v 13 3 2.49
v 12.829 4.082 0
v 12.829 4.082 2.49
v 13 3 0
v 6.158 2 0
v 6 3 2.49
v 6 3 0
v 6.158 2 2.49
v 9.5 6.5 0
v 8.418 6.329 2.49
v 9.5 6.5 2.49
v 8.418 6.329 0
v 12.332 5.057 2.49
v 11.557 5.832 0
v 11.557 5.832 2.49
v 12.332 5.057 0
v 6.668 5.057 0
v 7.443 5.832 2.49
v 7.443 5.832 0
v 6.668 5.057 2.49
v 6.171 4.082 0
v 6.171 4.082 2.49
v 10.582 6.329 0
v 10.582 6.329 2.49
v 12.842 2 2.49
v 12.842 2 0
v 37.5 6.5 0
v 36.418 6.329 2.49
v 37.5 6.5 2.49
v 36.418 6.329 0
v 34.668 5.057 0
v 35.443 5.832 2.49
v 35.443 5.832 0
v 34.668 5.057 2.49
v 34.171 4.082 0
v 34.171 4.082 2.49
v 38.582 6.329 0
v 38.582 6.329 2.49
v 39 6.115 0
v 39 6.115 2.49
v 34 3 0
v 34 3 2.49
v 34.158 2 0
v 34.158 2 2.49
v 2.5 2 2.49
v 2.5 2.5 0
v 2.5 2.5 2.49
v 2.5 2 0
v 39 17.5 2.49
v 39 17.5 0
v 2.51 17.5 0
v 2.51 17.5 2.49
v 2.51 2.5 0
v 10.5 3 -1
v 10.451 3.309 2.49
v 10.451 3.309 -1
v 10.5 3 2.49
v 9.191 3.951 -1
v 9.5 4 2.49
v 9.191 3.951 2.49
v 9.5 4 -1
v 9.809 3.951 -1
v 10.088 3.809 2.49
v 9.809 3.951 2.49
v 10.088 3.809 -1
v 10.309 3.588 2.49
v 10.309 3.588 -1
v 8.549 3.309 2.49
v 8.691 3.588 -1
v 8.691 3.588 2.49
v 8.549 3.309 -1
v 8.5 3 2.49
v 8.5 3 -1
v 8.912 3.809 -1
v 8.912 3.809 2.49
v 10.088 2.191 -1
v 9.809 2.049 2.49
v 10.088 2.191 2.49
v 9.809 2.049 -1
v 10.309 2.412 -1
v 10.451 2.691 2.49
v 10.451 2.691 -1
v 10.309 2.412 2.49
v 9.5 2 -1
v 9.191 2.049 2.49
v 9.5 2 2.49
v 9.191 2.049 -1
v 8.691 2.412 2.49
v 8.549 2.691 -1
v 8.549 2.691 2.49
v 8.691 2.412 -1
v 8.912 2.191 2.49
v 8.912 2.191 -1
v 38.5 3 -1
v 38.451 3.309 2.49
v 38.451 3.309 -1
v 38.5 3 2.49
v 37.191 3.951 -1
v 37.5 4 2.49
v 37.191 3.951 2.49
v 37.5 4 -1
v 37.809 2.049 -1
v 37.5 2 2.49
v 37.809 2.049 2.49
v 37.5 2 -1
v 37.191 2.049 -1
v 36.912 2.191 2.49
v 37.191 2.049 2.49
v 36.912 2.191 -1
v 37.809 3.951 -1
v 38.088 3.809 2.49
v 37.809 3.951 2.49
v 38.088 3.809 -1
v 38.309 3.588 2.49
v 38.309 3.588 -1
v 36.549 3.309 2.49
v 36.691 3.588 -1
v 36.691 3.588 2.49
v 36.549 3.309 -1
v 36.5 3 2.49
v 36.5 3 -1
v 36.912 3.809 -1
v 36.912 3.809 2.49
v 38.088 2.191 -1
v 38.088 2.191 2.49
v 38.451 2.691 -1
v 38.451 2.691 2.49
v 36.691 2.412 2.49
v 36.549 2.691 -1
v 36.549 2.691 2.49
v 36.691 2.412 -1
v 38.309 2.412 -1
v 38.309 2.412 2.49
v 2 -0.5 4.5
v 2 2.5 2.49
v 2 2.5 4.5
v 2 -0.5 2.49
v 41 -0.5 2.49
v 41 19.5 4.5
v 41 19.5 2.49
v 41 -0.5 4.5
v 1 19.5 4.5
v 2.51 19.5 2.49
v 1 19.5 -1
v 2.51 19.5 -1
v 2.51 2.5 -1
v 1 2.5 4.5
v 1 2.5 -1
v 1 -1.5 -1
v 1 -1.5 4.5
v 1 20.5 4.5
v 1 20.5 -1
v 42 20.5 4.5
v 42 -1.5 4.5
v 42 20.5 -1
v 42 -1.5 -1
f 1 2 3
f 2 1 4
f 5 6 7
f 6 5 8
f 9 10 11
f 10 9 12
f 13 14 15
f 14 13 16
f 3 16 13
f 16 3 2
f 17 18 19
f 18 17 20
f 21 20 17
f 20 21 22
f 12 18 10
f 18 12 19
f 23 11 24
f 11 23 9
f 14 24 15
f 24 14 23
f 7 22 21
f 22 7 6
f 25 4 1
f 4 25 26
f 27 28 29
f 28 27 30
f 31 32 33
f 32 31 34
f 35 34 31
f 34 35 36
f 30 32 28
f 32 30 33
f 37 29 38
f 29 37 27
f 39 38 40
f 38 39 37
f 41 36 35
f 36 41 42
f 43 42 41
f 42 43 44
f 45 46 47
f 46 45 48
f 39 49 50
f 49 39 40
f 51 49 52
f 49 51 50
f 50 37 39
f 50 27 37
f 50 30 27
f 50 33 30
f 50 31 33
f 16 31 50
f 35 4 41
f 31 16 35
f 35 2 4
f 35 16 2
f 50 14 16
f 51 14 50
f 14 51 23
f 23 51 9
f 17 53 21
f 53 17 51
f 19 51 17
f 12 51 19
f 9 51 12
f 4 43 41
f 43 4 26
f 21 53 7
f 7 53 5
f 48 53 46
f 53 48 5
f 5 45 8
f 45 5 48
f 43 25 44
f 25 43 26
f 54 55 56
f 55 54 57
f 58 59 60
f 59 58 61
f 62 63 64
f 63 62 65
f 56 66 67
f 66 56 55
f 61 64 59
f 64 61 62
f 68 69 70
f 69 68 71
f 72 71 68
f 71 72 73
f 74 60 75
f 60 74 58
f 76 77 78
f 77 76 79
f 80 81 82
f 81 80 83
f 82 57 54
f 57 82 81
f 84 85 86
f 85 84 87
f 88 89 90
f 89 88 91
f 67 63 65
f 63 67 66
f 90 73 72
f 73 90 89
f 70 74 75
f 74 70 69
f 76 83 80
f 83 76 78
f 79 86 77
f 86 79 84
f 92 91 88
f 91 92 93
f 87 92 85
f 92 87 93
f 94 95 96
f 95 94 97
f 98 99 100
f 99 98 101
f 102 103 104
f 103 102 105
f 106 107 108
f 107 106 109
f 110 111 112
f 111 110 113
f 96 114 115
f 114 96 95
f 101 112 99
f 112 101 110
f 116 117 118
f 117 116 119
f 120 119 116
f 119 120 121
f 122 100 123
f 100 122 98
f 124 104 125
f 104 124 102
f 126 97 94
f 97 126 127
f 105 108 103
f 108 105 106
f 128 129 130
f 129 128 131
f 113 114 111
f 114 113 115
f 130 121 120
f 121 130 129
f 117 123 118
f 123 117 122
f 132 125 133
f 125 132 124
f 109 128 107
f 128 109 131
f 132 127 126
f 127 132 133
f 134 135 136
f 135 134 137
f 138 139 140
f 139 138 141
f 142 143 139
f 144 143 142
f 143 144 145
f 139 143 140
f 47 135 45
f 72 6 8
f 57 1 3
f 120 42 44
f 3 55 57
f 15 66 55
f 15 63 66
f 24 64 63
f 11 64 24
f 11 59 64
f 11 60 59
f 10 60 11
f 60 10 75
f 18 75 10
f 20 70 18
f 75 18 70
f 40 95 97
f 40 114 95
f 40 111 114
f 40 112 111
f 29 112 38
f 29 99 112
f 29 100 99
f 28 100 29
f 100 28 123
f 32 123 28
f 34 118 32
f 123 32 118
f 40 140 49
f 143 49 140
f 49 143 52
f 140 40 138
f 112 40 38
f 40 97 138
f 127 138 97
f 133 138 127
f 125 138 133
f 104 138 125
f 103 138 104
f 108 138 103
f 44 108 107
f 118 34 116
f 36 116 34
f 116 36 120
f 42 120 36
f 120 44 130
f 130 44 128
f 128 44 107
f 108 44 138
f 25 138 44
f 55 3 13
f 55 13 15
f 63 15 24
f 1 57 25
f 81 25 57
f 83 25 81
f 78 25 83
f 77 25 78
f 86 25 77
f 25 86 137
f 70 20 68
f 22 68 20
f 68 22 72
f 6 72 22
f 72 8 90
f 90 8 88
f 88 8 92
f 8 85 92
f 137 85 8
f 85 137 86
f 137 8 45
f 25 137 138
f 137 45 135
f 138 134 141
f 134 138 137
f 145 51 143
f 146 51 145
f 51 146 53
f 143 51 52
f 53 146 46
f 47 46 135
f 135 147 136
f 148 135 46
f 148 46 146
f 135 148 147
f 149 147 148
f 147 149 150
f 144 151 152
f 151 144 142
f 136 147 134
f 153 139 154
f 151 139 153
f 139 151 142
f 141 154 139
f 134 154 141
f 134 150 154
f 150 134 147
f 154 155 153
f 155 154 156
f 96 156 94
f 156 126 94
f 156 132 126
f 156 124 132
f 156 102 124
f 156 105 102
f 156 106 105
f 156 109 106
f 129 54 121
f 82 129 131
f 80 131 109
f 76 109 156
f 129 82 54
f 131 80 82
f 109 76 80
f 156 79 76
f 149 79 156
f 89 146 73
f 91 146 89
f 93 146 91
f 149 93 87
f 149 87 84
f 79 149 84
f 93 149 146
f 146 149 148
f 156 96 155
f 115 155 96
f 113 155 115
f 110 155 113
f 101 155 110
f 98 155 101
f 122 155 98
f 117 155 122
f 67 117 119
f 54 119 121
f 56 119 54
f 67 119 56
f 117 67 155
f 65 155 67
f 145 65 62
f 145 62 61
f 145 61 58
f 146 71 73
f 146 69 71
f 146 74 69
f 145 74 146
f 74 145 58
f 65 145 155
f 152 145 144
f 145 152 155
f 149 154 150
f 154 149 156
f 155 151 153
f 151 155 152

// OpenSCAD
$fn=20;
tolerance=0.5;
casingThickness=1;

translate([2.5, 0, 3.5])
difference() {
	translate([-tolerance-casingThickness,-tolerance-casingThickness , -4.5-casingThickness+1])
	//casing
	cube([38+2*tolerance+2*casingThickness, 19+2*tolerance+2*casingThickness, 4.5+casingThickness]);
	
	//inner workings
	cutouts();
}

module cutouts() {

	translate([-tolerance, -tolerance, -1.01])
	//PCB + components cutout
	cube([38+2*tolerance, 19+2*tolerance, 5]);

	translate([-9.99, 3-tolerance, -9.01/2])
	//XT60 cutout
	cube([10, 16+2*tolerance, 8+2*tolerance]);

	difference(){
		translate([0, 2, -2.5-1])
		//PCB pins and solder cutout
		cube([36.5, 15.5, 2.5]);
		
		for(n=[7,35])
		translate([n, 3, 0])
		difference() {
			//screw-in spacers
			cylinder(r=3.5, h=100, center=true);
		}
	}
	
	//spacer center holes
	for(n=[7,35])
		translate([n, 3, 0])
		cylinder(r=1, h=100, center=true);
}
